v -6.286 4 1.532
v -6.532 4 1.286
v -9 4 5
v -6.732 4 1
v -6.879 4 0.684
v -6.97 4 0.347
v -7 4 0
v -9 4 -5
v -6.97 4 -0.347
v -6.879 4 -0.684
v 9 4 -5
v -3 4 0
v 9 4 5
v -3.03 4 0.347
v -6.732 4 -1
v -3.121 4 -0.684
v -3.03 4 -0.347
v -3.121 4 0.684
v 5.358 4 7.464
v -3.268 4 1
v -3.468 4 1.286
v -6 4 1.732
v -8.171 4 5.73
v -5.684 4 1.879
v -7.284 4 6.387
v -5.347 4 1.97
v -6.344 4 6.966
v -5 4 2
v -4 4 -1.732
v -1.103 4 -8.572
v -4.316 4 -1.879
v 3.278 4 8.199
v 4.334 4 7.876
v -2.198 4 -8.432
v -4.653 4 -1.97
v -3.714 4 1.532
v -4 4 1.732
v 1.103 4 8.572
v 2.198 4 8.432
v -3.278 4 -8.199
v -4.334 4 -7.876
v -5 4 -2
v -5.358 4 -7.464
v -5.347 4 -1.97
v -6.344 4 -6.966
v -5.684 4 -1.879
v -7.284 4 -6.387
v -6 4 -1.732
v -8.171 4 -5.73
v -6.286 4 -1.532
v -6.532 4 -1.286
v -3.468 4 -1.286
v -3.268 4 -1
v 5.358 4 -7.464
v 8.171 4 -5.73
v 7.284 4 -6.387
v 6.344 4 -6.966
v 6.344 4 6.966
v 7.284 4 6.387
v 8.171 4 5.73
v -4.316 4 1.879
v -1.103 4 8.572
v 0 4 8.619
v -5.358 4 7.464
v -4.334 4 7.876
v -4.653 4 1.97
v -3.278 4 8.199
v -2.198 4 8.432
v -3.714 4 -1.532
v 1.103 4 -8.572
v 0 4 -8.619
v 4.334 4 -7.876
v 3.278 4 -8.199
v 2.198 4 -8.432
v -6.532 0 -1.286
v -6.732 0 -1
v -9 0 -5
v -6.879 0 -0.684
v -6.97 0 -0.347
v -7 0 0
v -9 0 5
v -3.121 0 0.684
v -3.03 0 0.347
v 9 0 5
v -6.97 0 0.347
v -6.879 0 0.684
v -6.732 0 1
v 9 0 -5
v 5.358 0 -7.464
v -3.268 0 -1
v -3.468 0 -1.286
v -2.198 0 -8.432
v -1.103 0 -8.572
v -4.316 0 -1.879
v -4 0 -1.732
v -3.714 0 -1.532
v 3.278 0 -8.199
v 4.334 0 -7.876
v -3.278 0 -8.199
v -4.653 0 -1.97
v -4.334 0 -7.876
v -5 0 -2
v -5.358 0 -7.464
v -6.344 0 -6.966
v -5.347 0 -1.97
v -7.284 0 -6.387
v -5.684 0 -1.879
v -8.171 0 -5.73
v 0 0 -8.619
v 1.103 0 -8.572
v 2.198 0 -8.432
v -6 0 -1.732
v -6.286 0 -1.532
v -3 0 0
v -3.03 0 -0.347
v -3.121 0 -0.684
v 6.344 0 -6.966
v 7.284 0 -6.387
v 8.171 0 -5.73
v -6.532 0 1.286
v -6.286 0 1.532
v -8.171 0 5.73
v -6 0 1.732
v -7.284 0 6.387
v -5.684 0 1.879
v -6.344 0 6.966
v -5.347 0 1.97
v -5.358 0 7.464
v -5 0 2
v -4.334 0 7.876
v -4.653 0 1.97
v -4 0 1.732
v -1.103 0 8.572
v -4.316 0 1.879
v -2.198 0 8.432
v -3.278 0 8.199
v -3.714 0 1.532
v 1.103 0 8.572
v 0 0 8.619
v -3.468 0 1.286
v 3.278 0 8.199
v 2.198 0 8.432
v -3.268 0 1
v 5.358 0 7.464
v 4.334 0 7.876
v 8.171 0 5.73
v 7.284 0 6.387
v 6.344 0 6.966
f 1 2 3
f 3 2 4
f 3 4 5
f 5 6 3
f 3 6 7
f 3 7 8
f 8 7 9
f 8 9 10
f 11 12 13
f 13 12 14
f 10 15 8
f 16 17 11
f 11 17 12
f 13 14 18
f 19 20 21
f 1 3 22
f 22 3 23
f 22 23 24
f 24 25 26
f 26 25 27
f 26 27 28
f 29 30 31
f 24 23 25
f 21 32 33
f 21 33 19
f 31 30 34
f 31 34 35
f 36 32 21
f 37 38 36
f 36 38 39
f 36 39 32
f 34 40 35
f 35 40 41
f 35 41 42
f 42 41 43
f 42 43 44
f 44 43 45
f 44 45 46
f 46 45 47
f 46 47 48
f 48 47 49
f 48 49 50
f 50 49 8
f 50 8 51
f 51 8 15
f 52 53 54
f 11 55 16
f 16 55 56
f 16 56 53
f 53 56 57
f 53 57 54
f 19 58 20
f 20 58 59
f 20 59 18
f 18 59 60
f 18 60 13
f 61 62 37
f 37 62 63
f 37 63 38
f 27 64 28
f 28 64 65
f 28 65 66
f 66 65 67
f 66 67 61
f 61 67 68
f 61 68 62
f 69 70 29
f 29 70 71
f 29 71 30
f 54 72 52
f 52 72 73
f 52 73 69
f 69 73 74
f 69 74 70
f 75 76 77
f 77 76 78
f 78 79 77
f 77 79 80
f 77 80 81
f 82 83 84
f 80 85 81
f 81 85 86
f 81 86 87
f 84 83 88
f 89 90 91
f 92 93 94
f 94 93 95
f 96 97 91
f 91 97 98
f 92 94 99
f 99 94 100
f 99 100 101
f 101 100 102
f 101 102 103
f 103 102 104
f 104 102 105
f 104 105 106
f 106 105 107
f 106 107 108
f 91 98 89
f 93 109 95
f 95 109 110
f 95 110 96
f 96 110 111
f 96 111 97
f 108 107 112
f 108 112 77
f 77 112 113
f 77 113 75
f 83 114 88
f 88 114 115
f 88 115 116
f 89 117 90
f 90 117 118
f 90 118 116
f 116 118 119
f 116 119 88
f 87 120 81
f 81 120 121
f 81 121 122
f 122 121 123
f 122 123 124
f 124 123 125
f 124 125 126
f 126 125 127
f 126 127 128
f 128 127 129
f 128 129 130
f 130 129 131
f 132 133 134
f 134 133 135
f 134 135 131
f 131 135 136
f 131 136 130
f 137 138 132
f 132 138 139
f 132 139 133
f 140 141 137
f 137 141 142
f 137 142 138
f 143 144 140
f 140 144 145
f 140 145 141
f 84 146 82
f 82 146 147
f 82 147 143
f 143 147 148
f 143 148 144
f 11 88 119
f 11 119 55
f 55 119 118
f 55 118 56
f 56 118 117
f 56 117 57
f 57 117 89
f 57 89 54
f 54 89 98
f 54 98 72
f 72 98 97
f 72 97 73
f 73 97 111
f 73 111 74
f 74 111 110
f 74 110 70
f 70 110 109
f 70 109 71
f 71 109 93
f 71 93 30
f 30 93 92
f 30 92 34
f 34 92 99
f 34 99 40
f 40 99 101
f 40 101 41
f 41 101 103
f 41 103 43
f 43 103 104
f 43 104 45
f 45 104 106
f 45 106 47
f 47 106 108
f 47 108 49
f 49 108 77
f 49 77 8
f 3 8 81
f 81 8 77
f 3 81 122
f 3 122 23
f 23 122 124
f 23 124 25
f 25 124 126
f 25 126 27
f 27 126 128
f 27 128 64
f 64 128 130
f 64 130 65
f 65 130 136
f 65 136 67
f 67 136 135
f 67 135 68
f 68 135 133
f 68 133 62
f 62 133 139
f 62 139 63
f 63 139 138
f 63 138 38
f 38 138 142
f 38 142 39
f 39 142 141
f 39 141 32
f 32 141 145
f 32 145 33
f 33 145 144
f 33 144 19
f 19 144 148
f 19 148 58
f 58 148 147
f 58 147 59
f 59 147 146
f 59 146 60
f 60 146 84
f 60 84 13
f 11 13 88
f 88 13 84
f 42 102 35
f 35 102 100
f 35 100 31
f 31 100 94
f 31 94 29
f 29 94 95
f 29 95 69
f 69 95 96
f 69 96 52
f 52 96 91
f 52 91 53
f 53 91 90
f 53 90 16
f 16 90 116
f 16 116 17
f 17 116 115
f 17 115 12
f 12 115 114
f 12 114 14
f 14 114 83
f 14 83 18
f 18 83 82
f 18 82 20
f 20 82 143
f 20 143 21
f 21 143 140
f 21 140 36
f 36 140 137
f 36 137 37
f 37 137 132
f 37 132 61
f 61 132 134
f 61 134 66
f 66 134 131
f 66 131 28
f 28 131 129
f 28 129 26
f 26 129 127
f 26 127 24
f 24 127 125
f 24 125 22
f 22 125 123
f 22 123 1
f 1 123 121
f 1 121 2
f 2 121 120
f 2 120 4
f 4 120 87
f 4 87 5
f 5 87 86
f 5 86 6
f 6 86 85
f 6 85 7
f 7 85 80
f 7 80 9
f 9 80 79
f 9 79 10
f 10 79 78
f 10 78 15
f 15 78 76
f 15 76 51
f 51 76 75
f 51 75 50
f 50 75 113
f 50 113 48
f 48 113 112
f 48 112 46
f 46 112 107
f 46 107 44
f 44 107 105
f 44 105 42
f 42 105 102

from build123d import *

# Parameters (mm, degrees)
SKETCH1_R           = 2
BOSS_EXTRUDE1_DEPTH = 4


with BuildPart() as part:
    # Sketch1 → Boss-Extrude1 (new body)
    with BuildSketch(Plane(origin=(0, 0, 0), x_dir=(1, 0, 0), z_dir=(0, 1, 0))):
        with BuildLine():
            Line((9, -5), (9, 5))
            ThreePointArc((9, 5), (0, 8.61916848), (-9, 5))
            Line((-9, 5), (-9, -5))
            ThreePointArc((-9, -5), (0, -8.61916848), (9, -5))
        make_face()
        with Locations((-5, 0)):
            Circle(SKETCH1_R, mode=Mode.SUBTRACT)
    extrude(amount=BOSS_EXTRUDE1_DEPTH)


solid = part.part
